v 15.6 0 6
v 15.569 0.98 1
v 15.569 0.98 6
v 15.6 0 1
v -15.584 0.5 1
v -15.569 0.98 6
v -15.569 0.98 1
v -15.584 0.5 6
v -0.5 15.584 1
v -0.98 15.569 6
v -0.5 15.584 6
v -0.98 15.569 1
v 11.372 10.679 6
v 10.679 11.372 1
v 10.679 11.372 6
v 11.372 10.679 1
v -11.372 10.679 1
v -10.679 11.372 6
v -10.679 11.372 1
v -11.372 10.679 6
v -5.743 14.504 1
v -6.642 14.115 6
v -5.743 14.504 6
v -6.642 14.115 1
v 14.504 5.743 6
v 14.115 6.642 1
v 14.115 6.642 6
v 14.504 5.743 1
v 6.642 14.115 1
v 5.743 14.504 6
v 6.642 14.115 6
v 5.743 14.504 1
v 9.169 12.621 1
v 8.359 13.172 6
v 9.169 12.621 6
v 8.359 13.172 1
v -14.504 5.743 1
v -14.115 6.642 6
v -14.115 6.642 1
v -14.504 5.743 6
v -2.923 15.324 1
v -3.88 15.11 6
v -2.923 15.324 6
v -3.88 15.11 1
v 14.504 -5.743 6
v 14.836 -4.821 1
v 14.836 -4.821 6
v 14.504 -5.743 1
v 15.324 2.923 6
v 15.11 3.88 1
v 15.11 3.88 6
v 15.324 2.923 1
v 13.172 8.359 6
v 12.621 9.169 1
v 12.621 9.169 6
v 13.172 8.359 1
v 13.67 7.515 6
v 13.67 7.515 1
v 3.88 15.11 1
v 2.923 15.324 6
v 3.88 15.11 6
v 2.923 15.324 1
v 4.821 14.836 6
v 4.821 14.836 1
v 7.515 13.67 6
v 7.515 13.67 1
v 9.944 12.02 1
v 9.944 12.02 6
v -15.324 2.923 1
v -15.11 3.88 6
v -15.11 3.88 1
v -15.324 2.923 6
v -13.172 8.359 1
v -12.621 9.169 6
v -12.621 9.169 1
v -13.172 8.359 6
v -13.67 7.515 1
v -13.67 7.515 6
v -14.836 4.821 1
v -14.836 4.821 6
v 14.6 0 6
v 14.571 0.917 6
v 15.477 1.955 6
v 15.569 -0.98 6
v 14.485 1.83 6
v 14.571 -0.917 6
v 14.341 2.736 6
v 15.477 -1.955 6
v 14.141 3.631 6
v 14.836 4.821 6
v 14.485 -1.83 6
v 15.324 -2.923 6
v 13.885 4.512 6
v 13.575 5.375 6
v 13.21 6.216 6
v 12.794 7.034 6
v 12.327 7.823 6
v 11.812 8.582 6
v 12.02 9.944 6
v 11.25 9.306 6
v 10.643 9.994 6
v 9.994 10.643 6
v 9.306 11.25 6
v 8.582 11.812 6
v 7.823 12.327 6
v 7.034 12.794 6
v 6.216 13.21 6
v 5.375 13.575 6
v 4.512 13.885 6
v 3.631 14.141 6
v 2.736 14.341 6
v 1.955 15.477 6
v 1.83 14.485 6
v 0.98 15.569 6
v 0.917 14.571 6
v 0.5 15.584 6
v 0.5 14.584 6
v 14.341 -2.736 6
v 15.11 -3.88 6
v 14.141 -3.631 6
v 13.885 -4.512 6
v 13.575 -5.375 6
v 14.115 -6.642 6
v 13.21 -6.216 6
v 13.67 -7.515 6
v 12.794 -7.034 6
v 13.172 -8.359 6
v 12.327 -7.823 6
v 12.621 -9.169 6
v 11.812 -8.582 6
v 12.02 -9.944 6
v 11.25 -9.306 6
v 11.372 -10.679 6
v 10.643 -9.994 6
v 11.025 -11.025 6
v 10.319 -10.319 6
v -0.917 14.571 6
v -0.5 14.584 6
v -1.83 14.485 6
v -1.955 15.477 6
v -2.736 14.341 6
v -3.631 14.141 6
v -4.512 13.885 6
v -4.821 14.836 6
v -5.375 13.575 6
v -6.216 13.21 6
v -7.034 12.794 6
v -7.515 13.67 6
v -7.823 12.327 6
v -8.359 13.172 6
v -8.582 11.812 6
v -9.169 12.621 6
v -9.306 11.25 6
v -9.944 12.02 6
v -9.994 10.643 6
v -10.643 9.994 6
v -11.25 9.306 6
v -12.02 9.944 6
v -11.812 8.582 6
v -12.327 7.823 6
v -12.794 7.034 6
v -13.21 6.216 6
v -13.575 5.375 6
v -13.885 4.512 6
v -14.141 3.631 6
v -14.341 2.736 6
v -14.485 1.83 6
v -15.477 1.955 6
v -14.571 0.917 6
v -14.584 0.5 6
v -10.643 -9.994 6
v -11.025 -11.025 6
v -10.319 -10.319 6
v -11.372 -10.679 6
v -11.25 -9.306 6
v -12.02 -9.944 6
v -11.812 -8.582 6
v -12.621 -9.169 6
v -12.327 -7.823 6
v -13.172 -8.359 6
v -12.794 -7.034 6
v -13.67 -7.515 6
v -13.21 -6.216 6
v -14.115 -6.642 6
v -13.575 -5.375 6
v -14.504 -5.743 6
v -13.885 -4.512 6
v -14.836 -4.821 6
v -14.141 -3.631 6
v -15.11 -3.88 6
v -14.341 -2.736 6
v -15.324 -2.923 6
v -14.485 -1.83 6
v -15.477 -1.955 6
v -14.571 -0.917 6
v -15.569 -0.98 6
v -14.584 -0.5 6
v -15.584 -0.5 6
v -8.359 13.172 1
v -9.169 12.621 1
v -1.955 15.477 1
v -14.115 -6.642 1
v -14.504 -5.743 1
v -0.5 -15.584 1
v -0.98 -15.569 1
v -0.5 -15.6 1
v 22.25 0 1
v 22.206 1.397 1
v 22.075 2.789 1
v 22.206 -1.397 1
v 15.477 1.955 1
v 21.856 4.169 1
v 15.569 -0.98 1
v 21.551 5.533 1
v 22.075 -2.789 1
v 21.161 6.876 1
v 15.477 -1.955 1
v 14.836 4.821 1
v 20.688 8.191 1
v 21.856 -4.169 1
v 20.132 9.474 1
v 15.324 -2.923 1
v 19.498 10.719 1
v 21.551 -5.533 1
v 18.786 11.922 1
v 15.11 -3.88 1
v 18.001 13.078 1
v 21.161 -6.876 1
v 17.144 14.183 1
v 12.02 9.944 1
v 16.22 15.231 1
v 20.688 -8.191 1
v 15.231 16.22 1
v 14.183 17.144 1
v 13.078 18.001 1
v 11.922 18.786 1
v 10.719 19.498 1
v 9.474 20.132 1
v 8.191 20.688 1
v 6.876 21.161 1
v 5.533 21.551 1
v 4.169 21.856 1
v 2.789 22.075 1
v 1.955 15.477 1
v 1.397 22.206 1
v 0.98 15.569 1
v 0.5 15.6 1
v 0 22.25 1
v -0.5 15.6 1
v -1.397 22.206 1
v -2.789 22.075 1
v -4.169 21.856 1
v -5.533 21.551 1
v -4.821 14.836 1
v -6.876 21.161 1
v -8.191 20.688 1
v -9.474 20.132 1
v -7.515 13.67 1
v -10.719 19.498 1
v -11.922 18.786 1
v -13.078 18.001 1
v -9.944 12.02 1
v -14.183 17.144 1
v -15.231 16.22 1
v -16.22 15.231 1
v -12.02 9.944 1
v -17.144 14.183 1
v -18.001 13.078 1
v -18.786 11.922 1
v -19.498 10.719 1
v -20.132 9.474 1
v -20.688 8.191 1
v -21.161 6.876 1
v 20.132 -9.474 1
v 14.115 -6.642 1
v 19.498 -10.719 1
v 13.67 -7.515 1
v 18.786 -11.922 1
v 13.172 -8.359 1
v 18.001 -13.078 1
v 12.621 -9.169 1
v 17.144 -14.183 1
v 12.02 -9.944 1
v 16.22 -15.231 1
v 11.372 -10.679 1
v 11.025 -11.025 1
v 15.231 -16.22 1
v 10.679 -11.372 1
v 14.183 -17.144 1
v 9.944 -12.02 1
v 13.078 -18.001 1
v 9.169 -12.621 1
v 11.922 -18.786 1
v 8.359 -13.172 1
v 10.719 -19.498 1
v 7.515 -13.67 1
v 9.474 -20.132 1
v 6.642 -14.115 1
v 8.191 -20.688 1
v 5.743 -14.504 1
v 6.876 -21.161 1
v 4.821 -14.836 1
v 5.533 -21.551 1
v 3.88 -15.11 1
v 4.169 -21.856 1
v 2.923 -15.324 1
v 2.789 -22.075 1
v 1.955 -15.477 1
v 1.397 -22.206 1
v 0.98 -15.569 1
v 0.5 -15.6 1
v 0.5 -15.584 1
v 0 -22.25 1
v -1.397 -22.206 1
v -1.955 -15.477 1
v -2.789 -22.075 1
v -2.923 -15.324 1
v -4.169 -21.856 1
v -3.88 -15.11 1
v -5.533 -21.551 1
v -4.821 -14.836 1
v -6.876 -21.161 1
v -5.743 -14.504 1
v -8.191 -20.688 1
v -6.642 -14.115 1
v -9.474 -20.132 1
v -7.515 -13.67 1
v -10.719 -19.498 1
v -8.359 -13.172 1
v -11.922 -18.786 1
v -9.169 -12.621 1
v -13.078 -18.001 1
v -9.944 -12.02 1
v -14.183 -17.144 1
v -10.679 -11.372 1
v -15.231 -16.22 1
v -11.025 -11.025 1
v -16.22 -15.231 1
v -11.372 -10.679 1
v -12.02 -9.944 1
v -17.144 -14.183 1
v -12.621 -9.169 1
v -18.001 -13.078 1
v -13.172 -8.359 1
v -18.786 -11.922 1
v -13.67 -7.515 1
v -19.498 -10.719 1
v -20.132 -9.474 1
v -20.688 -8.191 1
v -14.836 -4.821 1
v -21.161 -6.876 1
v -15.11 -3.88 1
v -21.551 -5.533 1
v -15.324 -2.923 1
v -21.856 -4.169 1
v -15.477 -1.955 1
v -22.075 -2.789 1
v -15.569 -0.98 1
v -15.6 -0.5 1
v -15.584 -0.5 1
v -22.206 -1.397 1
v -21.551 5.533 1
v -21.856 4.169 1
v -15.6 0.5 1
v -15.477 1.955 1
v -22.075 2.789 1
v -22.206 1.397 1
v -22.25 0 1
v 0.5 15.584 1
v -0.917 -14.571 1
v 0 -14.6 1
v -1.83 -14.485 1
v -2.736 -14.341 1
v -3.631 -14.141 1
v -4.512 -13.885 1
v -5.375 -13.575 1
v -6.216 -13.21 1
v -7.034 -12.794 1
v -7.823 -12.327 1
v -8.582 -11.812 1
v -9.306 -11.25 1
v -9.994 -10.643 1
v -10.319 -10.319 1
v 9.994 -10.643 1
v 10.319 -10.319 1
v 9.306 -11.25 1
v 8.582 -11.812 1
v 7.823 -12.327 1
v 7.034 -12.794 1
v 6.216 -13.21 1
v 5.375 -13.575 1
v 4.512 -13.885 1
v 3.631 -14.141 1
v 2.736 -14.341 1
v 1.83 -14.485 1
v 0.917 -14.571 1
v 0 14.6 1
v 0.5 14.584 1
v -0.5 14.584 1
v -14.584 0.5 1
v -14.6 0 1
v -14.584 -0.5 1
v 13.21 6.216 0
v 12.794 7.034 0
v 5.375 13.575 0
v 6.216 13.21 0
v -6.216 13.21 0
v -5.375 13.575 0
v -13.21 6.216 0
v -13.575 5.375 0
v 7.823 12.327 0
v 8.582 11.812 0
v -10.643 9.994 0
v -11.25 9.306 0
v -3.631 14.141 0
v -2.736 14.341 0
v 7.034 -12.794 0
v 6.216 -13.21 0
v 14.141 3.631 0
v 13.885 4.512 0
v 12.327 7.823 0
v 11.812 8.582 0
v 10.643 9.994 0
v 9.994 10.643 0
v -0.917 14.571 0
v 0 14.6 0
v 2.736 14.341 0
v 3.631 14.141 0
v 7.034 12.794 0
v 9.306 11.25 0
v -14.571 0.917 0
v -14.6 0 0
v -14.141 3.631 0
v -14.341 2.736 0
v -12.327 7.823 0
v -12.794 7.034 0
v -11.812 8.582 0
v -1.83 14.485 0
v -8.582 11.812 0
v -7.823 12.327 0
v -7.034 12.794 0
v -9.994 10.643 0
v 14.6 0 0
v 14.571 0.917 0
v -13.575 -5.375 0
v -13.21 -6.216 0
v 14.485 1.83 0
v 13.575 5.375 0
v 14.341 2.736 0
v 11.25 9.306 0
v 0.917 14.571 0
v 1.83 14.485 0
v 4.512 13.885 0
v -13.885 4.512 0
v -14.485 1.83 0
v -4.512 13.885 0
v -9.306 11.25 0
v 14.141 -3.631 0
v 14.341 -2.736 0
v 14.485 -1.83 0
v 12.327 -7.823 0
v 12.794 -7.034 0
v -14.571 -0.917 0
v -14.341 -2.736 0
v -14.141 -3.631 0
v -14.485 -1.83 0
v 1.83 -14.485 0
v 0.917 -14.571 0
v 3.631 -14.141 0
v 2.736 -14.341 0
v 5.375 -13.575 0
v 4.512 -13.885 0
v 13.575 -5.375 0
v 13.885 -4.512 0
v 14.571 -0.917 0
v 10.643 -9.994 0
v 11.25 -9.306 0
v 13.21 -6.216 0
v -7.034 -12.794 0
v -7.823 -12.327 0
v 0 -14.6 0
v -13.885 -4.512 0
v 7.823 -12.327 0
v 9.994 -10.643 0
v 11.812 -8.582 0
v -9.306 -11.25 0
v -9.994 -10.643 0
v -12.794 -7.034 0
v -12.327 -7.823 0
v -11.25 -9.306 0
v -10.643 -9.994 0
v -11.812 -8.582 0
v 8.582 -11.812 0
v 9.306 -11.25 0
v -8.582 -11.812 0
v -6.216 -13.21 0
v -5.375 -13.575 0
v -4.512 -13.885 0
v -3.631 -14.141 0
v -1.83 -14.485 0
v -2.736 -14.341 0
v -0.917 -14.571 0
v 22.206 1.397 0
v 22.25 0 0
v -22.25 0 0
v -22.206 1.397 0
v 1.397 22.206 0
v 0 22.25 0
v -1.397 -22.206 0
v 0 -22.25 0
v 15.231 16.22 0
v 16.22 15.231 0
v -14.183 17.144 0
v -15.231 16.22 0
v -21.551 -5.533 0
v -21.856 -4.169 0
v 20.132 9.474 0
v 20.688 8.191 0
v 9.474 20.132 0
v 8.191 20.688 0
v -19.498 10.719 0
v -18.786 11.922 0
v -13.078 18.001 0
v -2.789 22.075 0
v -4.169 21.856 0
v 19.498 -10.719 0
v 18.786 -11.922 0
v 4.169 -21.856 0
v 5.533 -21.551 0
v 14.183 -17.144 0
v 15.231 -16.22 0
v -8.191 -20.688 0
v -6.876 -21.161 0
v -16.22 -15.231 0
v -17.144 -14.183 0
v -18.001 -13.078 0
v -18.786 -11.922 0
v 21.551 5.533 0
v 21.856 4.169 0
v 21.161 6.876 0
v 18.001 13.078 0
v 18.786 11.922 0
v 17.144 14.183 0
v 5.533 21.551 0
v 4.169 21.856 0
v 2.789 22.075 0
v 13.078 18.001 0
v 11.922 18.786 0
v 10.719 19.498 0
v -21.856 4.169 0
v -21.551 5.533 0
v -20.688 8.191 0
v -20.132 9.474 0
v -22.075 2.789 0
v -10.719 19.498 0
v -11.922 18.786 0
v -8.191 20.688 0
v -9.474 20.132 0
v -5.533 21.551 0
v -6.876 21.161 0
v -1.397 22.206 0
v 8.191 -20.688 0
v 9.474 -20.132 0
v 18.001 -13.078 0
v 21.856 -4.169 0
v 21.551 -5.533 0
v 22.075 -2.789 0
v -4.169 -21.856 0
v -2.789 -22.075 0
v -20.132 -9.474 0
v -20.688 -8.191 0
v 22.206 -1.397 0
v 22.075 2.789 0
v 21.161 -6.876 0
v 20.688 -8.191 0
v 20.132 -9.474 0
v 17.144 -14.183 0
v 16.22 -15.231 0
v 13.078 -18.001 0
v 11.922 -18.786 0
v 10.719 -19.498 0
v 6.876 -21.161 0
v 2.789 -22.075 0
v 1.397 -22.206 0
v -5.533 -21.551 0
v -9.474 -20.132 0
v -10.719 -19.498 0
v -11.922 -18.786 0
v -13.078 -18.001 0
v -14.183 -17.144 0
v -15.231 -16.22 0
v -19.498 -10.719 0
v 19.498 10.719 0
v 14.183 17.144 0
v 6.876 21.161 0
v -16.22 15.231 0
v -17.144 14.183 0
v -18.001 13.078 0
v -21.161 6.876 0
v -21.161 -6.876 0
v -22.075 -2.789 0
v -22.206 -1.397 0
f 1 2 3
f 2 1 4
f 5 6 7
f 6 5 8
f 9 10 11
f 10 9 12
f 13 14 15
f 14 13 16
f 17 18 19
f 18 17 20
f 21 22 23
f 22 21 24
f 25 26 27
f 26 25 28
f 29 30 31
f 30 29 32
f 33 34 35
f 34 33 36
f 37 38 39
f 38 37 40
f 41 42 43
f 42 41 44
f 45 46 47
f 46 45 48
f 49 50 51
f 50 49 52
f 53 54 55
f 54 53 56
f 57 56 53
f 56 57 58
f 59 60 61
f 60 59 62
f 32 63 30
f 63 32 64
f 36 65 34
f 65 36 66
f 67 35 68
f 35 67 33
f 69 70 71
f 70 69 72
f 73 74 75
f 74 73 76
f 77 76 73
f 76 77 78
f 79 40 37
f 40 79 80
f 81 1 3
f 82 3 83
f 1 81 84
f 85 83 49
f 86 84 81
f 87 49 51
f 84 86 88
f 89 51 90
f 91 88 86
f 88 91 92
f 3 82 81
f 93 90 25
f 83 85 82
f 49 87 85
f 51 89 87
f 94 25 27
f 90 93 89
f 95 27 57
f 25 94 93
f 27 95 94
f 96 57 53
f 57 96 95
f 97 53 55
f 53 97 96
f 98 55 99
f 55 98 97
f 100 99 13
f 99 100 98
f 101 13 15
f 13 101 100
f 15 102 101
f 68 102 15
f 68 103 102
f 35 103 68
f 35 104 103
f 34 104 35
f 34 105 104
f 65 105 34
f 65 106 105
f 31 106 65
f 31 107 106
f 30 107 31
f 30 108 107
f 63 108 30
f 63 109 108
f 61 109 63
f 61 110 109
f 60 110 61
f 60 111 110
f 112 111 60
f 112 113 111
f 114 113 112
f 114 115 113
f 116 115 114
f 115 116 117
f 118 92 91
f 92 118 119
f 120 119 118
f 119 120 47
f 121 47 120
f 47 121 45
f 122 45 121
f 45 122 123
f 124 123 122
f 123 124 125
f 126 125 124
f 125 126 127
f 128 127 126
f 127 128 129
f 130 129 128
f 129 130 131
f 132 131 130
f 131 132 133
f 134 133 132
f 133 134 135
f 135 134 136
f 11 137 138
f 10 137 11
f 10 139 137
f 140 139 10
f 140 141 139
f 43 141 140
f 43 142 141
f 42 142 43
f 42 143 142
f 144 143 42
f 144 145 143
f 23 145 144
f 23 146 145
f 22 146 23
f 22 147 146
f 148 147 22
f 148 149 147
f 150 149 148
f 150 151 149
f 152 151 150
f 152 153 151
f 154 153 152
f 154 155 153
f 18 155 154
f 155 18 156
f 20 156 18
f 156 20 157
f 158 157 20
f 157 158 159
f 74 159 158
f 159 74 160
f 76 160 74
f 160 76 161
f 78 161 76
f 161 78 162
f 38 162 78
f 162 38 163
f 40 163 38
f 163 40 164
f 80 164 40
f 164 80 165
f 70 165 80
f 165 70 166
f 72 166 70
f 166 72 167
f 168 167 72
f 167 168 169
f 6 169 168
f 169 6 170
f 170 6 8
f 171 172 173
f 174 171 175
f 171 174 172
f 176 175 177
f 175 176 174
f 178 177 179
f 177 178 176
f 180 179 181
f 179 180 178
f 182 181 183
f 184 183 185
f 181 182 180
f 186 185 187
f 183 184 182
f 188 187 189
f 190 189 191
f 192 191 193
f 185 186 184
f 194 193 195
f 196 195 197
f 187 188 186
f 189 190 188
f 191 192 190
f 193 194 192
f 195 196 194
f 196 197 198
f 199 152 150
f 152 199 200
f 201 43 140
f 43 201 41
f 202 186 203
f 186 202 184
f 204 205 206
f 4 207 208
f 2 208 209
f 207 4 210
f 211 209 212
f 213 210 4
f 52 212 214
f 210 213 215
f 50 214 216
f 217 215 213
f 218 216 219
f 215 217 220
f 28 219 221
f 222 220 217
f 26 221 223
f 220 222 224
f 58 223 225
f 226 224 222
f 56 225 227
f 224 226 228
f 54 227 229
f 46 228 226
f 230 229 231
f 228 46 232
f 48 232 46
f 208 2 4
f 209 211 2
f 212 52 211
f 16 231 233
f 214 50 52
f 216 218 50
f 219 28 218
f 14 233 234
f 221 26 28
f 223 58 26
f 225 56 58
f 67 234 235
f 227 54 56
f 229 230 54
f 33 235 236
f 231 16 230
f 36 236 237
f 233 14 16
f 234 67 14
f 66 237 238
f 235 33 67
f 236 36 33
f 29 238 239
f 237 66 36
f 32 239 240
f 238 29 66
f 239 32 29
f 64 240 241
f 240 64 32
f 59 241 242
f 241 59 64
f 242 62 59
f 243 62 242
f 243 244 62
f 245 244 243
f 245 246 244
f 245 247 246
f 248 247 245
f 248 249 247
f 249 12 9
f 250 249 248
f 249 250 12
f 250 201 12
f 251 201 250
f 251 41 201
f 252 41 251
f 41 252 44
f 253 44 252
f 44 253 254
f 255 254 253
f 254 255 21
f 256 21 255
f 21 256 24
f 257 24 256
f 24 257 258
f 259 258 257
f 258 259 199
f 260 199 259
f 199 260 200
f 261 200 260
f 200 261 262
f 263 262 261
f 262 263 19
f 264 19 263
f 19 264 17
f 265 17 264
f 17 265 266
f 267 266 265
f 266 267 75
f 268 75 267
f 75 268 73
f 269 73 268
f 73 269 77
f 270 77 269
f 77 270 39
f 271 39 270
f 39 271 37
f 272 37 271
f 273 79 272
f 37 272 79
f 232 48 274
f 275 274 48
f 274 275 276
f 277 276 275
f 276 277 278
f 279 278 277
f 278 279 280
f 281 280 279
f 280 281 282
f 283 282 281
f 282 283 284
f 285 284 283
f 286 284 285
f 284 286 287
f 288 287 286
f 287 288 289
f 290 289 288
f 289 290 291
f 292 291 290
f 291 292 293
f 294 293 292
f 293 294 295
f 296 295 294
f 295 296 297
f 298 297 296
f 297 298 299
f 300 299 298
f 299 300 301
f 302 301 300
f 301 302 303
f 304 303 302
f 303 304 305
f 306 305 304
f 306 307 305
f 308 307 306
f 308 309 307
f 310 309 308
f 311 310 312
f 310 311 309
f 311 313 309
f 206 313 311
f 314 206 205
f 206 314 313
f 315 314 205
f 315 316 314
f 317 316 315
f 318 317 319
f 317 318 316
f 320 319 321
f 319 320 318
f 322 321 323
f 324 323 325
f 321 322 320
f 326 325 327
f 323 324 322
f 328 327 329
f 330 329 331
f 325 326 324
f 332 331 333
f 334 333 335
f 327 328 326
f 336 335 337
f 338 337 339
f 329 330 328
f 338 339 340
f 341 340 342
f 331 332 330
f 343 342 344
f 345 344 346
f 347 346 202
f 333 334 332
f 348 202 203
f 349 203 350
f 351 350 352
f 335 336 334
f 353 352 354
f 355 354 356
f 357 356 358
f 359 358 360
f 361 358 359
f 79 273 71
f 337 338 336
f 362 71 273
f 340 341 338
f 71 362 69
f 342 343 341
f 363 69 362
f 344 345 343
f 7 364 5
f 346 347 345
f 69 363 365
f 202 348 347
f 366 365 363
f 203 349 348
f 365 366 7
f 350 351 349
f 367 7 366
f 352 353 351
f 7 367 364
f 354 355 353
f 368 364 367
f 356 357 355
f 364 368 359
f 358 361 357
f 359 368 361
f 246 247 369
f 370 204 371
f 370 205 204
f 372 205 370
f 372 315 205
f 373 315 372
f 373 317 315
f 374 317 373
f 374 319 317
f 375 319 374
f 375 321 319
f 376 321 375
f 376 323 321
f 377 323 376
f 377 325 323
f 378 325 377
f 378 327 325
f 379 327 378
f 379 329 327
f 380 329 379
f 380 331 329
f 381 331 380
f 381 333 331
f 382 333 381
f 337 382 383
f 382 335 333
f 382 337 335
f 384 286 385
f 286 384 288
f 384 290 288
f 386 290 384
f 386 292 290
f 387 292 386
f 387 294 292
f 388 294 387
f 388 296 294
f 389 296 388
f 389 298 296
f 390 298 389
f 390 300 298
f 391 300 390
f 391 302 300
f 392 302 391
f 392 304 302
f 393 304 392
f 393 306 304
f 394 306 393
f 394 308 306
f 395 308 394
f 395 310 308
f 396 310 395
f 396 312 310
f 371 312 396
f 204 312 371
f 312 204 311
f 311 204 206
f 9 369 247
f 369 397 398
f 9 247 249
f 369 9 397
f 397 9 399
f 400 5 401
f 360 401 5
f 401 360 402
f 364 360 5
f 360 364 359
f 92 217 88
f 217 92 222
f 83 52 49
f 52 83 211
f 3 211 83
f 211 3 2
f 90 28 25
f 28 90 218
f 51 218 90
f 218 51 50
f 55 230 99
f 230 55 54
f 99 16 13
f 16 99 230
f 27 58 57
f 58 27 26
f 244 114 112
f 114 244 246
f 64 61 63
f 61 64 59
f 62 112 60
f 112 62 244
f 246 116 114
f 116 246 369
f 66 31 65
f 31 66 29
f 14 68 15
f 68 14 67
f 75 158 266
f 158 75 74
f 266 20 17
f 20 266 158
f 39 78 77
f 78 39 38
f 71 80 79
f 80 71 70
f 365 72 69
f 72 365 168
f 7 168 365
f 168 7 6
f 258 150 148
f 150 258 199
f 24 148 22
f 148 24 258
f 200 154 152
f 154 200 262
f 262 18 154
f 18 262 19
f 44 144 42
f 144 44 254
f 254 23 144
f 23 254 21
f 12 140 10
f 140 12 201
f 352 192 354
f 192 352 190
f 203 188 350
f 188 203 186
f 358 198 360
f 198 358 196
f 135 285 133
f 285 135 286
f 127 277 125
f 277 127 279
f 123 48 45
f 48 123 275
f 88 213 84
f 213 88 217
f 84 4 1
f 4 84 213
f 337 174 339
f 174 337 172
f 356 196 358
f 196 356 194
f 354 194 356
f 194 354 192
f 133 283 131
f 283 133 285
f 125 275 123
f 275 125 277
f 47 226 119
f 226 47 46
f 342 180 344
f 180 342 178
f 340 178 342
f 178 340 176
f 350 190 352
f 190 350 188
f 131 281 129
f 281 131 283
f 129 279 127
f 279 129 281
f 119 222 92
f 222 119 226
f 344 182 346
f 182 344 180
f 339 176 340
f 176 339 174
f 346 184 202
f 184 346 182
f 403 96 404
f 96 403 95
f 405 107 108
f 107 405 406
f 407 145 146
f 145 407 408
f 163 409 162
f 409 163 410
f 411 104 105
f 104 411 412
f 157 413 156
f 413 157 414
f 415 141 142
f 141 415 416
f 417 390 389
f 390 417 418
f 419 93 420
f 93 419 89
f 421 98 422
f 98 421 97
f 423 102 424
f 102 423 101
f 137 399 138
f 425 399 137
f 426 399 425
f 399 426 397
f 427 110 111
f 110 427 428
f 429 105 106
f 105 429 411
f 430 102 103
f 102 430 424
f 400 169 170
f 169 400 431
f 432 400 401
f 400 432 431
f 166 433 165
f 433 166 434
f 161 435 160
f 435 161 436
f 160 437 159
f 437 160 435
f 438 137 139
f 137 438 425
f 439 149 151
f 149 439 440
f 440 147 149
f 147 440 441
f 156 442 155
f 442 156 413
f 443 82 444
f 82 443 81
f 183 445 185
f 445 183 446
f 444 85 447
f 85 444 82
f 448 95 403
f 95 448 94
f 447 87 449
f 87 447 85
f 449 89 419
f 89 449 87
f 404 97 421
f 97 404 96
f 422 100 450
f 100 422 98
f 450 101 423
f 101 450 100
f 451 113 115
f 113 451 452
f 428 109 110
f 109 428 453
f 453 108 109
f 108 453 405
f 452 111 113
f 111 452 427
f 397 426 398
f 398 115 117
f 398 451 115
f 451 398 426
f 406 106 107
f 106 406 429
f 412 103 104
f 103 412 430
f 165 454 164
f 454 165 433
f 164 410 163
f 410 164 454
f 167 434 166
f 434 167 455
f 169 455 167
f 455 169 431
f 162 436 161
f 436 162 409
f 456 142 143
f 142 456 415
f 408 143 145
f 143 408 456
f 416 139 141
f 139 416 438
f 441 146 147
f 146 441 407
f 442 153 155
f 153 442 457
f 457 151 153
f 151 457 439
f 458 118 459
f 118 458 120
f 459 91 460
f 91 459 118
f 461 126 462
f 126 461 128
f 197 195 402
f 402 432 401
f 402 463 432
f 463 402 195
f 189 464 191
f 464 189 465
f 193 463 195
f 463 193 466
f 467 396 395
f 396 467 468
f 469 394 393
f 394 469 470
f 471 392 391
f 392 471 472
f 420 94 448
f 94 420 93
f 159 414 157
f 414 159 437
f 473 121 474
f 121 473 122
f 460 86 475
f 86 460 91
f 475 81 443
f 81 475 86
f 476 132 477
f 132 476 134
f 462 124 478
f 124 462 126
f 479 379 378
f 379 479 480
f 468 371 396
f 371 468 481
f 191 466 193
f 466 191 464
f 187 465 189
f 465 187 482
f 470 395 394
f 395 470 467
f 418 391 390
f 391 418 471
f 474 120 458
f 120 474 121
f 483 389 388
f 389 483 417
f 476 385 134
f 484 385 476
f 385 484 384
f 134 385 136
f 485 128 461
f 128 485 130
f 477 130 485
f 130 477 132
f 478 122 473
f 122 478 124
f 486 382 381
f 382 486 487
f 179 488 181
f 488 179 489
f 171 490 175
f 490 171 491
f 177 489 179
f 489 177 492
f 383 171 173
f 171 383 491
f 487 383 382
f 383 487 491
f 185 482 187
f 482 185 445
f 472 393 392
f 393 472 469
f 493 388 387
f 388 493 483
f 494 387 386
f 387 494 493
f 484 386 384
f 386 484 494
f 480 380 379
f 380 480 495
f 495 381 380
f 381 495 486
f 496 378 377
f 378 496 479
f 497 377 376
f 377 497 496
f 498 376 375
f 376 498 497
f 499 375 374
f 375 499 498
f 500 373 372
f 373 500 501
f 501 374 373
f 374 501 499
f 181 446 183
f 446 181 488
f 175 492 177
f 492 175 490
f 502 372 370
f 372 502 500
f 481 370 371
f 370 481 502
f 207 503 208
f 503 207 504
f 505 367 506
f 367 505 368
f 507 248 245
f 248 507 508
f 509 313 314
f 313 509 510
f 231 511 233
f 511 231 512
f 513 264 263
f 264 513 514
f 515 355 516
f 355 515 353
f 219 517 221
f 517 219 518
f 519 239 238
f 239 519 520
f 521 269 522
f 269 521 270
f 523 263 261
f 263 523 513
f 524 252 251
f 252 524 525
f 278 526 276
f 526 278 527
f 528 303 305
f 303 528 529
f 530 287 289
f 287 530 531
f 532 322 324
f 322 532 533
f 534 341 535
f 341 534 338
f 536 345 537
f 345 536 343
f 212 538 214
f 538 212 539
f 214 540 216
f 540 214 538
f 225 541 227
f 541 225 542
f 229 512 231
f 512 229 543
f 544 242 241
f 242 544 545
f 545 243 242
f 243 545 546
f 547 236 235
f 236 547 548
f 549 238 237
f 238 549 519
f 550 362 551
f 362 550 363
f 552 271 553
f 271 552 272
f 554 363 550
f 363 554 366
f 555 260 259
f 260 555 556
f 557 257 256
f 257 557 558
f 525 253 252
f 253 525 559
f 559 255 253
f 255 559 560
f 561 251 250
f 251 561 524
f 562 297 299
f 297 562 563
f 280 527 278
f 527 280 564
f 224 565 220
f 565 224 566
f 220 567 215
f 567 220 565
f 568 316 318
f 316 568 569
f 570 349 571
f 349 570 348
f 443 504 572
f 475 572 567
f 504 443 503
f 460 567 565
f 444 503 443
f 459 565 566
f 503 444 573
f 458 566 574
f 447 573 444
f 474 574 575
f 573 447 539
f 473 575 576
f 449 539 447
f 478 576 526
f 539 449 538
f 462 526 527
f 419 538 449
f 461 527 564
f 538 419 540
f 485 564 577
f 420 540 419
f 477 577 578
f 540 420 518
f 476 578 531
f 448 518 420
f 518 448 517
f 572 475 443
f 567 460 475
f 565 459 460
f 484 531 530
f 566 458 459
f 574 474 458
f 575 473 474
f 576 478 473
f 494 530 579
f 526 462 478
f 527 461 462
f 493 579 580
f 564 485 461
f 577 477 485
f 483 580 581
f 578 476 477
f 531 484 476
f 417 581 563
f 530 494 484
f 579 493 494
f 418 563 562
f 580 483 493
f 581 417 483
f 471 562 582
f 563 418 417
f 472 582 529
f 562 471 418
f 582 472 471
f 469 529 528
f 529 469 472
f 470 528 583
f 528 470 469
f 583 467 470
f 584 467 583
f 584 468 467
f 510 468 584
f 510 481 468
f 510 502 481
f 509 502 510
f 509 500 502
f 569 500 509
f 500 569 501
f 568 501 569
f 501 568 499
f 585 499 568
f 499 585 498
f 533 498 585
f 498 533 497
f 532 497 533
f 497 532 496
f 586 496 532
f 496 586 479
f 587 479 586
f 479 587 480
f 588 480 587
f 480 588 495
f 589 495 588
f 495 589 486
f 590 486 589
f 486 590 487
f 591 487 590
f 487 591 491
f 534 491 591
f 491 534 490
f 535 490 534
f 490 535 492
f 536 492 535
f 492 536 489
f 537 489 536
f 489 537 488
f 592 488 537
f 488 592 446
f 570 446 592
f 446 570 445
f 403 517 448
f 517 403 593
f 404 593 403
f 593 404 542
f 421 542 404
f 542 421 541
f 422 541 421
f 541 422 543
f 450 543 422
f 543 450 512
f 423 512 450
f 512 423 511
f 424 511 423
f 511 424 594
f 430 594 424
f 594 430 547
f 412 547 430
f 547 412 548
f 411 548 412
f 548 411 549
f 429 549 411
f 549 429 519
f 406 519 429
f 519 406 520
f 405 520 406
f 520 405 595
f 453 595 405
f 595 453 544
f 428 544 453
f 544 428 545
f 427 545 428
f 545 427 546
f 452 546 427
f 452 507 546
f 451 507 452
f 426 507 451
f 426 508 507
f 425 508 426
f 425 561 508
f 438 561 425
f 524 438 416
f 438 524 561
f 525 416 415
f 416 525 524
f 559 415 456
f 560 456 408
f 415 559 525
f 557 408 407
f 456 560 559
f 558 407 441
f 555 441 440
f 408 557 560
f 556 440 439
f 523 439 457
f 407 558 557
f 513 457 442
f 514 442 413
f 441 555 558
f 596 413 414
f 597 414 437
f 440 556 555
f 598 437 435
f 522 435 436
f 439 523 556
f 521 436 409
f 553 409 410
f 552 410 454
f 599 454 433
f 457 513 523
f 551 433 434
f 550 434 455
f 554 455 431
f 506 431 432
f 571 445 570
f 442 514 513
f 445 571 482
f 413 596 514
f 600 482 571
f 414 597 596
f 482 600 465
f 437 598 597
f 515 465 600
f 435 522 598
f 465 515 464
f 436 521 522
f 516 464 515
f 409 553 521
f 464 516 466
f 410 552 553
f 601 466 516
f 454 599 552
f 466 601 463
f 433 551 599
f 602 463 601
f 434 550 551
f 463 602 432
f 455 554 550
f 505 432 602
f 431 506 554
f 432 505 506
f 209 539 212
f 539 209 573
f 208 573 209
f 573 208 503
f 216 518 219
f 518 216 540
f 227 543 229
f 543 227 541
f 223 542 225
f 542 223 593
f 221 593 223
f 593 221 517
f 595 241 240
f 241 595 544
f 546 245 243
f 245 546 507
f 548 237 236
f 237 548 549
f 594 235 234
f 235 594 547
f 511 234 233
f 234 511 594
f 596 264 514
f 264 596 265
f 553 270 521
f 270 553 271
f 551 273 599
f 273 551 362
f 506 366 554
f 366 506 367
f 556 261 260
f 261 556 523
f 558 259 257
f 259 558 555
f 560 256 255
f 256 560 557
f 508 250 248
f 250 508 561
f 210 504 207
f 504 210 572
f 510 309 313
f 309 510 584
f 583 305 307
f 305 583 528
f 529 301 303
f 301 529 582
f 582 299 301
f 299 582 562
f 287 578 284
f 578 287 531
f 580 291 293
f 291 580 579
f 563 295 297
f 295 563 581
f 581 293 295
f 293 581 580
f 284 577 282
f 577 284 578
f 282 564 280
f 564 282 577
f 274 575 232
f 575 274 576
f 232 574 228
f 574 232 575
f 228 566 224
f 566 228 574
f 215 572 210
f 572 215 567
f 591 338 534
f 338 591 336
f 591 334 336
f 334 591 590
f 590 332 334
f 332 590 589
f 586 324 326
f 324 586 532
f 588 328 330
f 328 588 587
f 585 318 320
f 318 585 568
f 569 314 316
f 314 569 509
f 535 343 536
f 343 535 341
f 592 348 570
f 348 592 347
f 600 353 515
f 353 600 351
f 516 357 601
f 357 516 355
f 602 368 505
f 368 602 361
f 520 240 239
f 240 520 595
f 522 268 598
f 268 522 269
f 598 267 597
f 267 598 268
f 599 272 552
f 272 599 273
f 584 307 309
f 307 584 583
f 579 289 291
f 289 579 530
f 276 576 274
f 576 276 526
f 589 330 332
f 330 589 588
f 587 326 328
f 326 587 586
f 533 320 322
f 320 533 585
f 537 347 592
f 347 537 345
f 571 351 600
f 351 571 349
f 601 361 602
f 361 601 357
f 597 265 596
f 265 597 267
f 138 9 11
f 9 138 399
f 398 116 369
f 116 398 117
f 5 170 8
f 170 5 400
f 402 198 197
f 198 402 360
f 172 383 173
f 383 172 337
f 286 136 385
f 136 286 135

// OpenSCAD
// This design is a cover for Adafruit's 16-Neopixel ring + Gemma with cutouts for the wires. I used 26 AWG wires and the cutout slots are a bit small at 1mm but I wanted to preserve the original design.
// Author: brightcolorfulflickers - instagram, tumblr, github
// September 2016

ring_h = 5; // height of the inner ring perpendicular to the PCB (in z-axis)
outer_r = 44.5/2; // from OD posted on Adafruit product page
inner_r = 31.2/2; // from ID posted on Adafruit product page
case_ring_thick = 1; // thickness of the inner ring perpendicular to the PCB (in r-axis)
case_top_thick = 1; // the thickness of the diffusion layer on top of the LEDs
wire_slot = 1; // width of slot for wires
fnval = 100; // resolution of render

module ring_case() {
    difference() {
        union() {
            translate([0,0,case_top_thick]) difference() {
            cylinder(ring_h,inner_r,inner_r, false, $fn=fnval);
            cylinder(ring_h,inner_r-case_ring_thick,inner_r-case_ring_thick, false, $fn=fnval);
            }

            difference() {
                cylinder(case_top_thick,outer_r,outer_r, false, $fn=fnval);
                cylinder(case_top_thick,inner_r-case_ring_thick,inner_r-case_ring_thick, false, $fn=fnval);
            }
        }
        
        //Cut out slots for the wires.
        translate([-wire_slot/2,0,case_top_thick]) cube([wire_slot,inner_r,ring_h], false);
        translate([-wire_slot/2,-inner_r,case_top_thick]) cube([wire_slot,inner_r,ring_h], false);
        
        translate([-inner_r,-wire_slot/2,case_top_thick]) cube([inner_r,wire_slot,ring_h], false);
    }
}

/* 
 * Excerpt from... 
 * 
 * Parametric Encoder Wheel 
 *
 * by Alex Franke (codecreations), March 2012
 * http://www.theFrankes.com
 * 
 * Licenced under Creative Commons Attribution - Non-Commercial - Share Alike 3.0 
*/
 
module arc( height, depth, radius, degrees ) {
    // This dies a horible death if it's not rendered here 
    // -- sucks up all memory and spins out of control 
    render() {
        difference() {
            // Outer ring
            rotate_extrude($fn = 100)
                translate([radius - height, 0, 0])
                    square([height,depth]);
         
            // Cut half off
            translate([0,-(radius+1),-.5]) 
                cube ([radius+1,(radius+1)*2,depth+1]);
         
            // Cover the other half as necessary
            rotate([0,0,180-degrees])
            translate([0,-(radius+1),-.5]) 
                cube ([radius+1,(radius+1)*2,depth+1]);
         
        }
    }
}

difference() {
    ring_case();
    //This part cuts out the top arc since the Gemma presses against the Neopixel ring.
    translate([0,0,case_top_thick]) arc(case_ring_thick,ring_h,inner_r,45);
    translate([0,0,case_top_thick]) mirror([1,0,0]) arc(case_ring_thick,ring_h,inner_r,45);
}
